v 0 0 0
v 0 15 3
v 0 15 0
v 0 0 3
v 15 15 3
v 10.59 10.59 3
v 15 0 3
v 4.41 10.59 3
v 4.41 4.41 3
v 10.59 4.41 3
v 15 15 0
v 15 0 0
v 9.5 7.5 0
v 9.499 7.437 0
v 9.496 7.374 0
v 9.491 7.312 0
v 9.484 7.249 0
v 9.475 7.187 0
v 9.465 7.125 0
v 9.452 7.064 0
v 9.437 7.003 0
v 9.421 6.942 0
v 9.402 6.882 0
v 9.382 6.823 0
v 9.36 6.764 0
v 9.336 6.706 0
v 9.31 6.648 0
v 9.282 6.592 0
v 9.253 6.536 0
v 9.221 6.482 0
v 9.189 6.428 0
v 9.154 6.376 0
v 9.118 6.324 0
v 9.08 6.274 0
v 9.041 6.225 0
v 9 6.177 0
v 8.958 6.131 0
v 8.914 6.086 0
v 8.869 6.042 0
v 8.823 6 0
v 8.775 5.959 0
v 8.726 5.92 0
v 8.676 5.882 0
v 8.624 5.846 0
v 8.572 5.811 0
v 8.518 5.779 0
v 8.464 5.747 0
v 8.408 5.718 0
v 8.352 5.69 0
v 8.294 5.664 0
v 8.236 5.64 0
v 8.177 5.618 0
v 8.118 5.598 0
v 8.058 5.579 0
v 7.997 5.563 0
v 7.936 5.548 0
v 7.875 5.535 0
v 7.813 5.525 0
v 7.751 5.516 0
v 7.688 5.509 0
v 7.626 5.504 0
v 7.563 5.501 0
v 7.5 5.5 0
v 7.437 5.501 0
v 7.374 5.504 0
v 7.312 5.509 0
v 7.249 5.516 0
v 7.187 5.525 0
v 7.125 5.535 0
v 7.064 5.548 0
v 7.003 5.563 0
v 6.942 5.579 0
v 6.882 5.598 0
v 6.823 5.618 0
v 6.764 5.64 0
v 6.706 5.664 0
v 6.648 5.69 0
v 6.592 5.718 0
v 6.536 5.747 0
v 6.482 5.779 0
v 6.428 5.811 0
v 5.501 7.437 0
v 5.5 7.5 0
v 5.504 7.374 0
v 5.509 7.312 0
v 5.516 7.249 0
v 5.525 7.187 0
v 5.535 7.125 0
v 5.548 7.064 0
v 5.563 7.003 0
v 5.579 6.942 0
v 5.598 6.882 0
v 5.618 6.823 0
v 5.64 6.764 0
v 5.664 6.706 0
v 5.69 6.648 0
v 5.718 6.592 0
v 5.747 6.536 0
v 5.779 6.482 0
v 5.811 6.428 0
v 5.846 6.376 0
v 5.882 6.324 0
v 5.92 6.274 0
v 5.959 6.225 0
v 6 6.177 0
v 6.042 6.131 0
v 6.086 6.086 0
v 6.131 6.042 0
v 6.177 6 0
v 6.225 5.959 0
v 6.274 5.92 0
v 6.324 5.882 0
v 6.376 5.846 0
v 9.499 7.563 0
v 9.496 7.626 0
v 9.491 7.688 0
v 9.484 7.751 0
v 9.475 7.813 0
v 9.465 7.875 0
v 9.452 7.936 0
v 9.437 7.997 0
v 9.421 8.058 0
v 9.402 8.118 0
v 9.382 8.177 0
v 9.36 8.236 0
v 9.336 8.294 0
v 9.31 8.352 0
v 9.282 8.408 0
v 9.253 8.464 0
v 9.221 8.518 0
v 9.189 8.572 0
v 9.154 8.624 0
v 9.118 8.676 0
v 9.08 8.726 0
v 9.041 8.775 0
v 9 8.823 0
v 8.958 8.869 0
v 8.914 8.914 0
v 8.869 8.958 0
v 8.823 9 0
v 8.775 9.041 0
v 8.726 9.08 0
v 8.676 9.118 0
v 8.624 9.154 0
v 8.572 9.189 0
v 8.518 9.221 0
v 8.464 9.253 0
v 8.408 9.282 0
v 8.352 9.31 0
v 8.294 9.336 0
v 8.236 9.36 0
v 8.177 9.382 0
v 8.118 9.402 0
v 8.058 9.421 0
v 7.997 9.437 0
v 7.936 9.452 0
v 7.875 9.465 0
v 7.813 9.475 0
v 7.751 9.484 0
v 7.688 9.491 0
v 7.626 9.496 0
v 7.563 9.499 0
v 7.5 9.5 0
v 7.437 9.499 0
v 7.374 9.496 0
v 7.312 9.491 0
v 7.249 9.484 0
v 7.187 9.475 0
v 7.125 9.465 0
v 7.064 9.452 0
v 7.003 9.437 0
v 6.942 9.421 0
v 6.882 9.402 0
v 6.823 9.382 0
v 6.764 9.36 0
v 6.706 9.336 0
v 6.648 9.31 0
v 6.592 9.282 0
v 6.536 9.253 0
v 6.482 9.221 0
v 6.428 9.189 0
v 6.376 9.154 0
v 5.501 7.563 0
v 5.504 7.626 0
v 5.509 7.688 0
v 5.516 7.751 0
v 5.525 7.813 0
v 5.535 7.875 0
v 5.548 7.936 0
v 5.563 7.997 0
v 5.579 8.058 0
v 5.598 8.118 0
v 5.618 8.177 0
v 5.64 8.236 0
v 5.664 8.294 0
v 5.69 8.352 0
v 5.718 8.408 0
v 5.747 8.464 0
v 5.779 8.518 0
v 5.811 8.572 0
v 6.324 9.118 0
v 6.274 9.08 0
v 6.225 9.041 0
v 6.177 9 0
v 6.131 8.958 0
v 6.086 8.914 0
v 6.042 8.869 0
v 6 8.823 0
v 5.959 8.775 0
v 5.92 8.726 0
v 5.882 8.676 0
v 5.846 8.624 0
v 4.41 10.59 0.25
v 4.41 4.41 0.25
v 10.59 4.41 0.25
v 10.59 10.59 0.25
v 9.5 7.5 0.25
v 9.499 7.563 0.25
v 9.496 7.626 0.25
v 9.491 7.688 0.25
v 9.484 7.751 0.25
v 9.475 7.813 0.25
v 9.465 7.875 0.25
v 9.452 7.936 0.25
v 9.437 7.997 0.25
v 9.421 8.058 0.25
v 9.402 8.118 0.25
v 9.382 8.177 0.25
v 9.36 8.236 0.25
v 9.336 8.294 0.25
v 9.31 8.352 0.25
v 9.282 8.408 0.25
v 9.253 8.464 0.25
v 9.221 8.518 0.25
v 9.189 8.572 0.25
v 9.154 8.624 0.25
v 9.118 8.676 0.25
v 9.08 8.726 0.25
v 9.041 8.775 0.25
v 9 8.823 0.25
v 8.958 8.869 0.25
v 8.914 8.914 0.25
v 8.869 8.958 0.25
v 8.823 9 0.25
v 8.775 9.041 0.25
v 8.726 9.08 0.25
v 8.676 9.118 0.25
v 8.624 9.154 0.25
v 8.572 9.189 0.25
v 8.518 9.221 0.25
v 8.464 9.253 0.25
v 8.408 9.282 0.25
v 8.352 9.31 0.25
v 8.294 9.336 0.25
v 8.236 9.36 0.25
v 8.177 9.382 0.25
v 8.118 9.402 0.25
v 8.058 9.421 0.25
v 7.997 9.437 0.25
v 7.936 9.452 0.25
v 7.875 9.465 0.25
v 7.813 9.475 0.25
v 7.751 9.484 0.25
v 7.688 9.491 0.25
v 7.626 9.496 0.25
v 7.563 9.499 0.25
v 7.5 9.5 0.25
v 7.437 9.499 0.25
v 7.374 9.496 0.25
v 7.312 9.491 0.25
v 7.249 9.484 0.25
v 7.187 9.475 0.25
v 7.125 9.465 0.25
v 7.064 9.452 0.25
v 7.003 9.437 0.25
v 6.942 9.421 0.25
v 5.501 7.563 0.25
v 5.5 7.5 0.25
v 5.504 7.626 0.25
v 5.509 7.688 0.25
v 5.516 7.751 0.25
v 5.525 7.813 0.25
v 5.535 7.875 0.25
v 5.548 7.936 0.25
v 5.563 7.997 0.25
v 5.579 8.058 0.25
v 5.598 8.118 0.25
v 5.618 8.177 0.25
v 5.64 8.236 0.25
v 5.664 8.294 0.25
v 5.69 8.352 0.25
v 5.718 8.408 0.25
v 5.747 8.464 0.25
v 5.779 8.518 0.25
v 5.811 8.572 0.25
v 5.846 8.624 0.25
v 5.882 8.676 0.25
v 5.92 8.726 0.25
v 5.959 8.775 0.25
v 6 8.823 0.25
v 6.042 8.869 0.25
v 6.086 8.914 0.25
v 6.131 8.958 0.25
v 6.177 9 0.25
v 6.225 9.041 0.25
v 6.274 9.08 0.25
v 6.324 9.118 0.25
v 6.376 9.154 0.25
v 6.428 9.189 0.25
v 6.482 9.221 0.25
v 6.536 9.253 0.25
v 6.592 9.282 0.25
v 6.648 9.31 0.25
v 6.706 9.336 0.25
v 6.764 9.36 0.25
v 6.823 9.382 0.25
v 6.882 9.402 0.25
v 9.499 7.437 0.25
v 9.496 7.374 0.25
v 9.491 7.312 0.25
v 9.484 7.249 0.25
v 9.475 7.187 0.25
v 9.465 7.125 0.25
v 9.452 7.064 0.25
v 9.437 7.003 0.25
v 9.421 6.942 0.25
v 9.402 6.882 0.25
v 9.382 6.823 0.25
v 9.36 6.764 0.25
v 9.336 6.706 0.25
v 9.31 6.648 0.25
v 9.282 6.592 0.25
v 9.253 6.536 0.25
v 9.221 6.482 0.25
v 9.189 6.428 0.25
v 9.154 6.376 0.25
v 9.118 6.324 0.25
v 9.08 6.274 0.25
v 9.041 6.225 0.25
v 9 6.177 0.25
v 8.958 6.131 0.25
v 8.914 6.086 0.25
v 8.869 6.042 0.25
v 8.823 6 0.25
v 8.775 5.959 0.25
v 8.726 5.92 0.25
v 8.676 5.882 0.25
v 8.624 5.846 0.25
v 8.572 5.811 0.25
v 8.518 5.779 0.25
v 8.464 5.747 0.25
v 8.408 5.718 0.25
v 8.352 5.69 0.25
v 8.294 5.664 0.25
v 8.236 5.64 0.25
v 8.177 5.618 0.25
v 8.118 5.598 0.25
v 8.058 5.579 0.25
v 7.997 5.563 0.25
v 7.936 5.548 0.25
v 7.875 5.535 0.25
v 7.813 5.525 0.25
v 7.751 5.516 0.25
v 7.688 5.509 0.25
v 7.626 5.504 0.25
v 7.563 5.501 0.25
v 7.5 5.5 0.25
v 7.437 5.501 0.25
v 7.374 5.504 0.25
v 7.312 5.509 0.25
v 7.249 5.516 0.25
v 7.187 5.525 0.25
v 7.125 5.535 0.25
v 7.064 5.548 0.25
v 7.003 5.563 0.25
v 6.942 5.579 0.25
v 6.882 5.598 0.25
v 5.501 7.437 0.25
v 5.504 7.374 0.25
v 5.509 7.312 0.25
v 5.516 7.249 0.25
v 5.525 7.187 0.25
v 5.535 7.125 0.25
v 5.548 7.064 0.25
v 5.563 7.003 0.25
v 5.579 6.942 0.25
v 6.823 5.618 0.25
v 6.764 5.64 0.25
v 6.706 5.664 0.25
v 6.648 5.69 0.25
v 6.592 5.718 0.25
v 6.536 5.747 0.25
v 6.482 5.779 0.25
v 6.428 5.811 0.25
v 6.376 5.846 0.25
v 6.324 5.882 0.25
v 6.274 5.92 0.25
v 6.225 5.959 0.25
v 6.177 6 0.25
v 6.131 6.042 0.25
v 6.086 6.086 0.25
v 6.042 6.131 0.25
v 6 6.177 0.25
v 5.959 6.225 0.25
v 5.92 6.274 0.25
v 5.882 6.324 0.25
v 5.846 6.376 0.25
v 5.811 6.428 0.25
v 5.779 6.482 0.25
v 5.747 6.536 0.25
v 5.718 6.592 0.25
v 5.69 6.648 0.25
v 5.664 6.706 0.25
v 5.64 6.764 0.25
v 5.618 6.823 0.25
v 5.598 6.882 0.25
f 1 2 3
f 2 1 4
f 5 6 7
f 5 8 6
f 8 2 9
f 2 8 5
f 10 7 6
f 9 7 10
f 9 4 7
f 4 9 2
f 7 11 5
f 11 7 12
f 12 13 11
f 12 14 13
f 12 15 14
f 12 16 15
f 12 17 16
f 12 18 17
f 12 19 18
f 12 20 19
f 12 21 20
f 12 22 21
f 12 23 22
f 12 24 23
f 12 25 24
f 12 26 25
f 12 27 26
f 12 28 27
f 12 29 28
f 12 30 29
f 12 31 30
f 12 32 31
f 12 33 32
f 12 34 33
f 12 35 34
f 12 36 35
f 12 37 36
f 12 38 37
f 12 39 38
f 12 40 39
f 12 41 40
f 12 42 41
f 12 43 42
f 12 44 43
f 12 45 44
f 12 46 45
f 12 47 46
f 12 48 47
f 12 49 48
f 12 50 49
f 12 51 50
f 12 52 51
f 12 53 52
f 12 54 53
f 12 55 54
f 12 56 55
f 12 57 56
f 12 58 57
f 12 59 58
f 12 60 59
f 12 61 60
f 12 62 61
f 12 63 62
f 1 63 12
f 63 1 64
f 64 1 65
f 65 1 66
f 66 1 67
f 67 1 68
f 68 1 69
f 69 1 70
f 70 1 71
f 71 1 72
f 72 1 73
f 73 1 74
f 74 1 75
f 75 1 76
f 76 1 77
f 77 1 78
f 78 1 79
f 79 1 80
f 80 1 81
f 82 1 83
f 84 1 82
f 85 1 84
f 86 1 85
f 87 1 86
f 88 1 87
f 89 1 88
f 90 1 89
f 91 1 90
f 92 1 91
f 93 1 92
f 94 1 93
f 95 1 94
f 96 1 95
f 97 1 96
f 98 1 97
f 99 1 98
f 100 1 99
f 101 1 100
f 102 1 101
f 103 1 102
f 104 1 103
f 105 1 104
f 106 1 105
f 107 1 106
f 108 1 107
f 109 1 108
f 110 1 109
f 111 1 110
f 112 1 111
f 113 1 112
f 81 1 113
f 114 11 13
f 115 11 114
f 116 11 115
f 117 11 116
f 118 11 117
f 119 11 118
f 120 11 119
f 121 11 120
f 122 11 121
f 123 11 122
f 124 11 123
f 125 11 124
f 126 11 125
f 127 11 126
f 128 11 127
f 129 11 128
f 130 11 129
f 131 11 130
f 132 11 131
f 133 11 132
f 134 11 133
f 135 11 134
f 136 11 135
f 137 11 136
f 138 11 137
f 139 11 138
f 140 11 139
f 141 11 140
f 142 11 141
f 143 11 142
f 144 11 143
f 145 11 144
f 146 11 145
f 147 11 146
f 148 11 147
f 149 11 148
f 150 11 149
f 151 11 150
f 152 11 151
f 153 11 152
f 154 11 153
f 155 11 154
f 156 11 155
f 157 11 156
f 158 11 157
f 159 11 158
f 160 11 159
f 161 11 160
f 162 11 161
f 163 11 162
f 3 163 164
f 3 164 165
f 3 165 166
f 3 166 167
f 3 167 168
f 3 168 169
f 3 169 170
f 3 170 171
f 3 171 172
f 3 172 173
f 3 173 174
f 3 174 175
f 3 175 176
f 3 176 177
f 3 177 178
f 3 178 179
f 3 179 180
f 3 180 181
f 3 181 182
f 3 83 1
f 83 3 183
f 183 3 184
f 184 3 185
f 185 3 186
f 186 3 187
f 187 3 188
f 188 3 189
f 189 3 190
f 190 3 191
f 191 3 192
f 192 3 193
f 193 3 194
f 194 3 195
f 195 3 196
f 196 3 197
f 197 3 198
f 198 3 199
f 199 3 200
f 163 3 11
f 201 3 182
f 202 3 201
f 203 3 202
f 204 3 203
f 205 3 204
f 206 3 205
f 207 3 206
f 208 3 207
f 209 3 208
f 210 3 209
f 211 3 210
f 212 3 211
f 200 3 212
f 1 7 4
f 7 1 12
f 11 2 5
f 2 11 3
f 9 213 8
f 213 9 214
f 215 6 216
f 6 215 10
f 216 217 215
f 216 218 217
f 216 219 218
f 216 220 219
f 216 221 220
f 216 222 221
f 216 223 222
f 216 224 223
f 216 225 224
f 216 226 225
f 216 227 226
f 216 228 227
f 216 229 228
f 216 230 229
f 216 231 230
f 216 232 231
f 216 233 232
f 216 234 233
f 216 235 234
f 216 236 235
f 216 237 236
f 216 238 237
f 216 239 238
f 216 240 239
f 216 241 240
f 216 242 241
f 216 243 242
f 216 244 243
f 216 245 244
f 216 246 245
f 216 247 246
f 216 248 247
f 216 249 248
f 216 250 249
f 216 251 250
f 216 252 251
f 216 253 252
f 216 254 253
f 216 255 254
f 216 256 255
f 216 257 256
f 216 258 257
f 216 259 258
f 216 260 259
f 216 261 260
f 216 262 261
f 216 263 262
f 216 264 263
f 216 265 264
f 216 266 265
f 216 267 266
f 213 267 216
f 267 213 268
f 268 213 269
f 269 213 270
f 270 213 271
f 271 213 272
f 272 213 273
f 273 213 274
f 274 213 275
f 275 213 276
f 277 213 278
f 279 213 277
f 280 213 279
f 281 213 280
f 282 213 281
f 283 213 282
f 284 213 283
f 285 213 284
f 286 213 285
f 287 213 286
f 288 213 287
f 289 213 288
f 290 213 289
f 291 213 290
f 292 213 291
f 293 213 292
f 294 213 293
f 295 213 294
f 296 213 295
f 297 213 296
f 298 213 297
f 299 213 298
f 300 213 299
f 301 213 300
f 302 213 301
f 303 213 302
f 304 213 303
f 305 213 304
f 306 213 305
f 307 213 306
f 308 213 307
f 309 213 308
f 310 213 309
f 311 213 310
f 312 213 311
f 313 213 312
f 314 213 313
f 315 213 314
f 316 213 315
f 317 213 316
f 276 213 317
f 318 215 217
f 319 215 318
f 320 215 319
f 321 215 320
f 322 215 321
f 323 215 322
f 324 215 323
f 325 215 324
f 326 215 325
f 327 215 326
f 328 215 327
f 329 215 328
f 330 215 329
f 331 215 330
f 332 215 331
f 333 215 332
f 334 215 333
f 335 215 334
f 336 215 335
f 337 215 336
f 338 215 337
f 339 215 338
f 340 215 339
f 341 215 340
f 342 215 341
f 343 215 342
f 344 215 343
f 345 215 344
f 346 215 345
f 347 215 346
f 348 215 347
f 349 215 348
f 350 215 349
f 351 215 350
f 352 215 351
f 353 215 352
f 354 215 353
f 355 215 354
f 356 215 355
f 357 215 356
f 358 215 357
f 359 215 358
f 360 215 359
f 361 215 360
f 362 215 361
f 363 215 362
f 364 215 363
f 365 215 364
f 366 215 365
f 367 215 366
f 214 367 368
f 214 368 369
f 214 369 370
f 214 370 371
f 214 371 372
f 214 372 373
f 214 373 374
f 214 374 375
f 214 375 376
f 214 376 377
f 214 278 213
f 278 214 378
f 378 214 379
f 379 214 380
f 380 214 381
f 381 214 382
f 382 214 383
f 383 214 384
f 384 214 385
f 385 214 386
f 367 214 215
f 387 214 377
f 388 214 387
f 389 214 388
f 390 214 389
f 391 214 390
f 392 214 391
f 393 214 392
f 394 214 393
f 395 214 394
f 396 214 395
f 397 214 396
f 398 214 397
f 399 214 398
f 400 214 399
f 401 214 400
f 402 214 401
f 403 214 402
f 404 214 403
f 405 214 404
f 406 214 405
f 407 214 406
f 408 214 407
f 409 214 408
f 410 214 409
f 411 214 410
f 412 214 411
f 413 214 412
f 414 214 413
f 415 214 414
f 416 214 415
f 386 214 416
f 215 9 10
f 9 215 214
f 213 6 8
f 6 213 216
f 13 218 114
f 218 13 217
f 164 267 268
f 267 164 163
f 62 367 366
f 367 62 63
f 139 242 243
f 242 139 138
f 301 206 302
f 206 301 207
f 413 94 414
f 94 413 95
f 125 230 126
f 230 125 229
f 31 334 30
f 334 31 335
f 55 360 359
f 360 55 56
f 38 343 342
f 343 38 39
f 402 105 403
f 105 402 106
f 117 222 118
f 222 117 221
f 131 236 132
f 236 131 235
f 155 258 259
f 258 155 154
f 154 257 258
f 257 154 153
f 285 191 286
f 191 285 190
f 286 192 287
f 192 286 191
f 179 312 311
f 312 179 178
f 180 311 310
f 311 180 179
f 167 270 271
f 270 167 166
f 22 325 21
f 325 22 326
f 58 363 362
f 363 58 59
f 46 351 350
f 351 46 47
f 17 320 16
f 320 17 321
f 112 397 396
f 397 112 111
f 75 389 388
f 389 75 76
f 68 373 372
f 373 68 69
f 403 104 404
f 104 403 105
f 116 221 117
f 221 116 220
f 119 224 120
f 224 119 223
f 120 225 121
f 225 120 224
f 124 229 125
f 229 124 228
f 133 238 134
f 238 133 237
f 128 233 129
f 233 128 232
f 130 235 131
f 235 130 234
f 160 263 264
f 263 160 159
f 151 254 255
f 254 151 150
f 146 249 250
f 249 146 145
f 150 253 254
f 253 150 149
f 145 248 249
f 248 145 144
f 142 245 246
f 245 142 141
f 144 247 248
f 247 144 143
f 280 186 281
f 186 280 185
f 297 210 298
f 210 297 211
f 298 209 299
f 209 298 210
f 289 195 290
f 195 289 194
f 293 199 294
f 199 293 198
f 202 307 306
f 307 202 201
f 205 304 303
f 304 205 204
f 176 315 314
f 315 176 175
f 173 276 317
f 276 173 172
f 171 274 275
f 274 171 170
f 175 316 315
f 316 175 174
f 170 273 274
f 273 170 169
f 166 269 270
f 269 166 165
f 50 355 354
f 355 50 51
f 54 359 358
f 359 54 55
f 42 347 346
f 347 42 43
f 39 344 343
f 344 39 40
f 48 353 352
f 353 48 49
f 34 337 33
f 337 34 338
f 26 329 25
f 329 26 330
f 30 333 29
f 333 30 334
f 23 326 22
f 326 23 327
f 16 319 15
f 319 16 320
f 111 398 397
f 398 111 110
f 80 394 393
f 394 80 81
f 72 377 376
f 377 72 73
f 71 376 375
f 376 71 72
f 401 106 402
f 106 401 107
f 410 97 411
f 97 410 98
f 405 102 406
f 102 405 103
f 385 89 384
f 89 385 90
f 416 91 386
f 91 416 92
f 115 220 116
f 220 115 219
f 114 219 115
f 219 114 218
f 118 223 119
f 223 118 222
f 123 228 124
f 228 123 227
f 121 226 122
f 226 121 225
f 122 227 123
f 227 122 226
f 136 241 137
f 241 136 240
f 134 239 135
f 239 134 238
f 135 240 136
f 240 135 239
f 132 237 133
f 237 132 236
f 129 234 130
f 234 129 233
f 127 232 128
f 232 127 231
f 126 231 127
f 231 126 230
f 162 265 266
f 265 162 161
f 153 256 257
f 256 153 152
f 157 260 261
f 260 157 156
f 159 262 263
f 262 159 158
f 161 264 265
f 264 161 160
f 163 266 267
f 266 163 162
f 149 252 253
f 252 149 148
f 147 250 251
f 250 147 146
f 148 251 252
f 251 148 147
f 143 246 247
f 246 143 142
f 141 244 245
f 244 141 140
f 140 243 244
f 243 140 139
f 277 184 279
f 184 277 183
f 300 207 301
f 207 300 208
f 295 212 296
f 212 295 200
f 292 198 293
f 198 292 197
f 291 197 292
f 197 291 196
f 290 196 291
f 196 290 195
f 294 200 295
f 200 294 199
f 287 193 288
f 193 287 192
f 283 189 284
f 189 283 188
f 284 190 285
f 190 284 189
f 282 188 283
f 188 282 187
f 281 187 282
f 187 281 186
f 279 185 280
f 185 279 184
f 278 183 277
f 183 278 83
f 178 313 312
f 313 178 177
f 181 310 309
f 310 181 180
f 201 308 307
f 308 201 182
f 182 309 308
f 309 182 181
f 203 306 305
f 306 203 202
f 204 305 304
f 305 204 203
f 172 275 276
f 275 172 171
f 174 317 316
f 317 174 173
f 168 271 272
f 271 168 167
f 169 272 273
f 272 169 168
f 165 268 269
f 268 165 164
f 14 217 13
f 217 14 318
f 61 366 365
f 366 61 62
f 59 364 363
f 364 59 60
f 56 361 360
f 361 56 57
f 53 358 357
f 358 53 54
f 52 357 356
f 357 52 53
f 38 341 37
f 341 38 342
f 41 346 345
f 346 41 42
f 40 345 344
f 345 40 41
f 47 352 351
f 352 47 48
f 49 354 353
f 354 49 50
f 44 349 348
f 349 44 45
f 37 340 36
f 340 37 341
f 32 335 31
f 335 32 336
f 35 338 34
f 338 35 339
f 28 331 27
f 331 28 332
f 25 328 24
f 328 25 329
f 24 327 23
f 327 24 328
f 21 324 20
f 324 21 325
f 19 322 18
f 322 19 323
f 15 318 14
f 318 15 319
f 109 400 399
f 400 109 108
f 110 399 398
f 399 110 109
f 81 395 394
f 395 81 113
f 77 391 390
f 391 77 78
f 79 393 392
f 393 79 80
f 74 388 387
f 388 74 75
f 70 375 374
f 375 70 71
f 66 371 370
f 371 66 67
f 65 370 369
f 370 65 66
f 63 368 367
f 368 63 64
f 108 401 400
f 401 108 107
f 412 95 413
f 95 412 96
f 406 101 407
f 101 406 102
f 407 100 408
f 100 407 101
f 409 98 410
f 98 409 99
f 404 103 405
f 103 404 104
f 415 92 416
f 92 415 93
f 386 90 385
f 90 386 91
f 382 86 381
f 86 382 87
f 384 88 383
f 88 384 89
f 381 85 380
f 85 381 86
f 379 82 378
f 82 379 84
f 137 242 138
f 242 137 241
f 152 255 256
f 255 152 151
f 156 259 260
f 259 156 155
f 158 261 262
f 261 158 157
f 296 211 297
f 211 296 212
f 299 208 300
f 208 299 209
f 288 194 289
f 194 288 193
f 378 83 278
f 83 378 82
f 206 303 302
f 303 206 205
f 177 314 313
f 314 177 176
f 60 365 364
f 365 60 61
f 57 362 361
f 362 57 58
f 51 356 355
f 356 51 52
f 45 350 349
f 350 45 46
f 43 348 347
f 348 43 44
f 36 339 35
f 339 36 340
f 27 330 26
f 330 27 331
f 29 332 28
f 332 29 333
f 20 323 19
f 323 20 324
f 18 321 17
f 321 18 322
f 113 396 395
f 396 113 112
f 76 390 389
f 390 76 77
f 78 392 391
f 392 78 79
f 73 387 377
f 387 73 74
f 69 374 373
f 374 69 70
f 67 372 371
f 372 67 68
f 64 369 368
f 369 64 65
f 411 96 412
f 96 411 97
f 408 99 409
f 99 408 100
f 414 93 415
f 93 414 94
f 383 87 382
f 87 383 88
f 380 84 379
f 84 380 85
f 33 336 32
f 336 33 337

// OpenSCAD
$fn = 200;

difference() {
    cube([15, 15, 3]);
    
    translate([4.41, 4.41, 0.25])
        cube([6.18, 6.18, 10]);
    
    translate([7.5, 7.5, -1])
        cylinder(r=2, h=10);
}
